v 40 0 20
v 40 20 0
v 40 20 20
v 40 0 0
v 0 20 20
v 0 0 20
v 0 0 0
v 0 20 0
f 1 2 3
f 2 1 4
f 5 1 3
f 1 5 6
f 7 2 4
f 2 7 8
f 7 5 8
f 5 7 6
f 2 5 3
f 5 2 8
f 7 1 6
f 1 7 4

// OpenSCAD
// Dimensions
base_length = 40;
base_width = 20;
base_height = 20;
slope_height = 20;

// Main block
module angled_block() {
    difference() {
        // Full rectangular block
        cube([base_length, base_width, base_height]);

        // Subtract sloped wedge
        translate([0, 0, 0])
            polyhedron(
                points=[
                    [0, 0, base_height],               // 0 - front bottom left
                    [base_length, 0, 0],               // 1 - front bottom right
                    [base_length, base_width, 0],      // 2 - back bottom right
                    [0, base_width, base_height],      // 3 - back bottom left
                    [0, 0, 0],                         // 4 - front top left
                    [0, base_width, 0]                 // 5 - back top left
                ],
                faces=[
                    [0, 1, 2, 3],  // bottom face
                    [0, 4, 5, 3],  // left face
                    [1, 2, 5, 4],  // right face
                    [0, 1, 4],     // front triangle
                    [3, 2, 5]      // back triangle
                ]
            );
    }
}

// Render the block
angled_block();
